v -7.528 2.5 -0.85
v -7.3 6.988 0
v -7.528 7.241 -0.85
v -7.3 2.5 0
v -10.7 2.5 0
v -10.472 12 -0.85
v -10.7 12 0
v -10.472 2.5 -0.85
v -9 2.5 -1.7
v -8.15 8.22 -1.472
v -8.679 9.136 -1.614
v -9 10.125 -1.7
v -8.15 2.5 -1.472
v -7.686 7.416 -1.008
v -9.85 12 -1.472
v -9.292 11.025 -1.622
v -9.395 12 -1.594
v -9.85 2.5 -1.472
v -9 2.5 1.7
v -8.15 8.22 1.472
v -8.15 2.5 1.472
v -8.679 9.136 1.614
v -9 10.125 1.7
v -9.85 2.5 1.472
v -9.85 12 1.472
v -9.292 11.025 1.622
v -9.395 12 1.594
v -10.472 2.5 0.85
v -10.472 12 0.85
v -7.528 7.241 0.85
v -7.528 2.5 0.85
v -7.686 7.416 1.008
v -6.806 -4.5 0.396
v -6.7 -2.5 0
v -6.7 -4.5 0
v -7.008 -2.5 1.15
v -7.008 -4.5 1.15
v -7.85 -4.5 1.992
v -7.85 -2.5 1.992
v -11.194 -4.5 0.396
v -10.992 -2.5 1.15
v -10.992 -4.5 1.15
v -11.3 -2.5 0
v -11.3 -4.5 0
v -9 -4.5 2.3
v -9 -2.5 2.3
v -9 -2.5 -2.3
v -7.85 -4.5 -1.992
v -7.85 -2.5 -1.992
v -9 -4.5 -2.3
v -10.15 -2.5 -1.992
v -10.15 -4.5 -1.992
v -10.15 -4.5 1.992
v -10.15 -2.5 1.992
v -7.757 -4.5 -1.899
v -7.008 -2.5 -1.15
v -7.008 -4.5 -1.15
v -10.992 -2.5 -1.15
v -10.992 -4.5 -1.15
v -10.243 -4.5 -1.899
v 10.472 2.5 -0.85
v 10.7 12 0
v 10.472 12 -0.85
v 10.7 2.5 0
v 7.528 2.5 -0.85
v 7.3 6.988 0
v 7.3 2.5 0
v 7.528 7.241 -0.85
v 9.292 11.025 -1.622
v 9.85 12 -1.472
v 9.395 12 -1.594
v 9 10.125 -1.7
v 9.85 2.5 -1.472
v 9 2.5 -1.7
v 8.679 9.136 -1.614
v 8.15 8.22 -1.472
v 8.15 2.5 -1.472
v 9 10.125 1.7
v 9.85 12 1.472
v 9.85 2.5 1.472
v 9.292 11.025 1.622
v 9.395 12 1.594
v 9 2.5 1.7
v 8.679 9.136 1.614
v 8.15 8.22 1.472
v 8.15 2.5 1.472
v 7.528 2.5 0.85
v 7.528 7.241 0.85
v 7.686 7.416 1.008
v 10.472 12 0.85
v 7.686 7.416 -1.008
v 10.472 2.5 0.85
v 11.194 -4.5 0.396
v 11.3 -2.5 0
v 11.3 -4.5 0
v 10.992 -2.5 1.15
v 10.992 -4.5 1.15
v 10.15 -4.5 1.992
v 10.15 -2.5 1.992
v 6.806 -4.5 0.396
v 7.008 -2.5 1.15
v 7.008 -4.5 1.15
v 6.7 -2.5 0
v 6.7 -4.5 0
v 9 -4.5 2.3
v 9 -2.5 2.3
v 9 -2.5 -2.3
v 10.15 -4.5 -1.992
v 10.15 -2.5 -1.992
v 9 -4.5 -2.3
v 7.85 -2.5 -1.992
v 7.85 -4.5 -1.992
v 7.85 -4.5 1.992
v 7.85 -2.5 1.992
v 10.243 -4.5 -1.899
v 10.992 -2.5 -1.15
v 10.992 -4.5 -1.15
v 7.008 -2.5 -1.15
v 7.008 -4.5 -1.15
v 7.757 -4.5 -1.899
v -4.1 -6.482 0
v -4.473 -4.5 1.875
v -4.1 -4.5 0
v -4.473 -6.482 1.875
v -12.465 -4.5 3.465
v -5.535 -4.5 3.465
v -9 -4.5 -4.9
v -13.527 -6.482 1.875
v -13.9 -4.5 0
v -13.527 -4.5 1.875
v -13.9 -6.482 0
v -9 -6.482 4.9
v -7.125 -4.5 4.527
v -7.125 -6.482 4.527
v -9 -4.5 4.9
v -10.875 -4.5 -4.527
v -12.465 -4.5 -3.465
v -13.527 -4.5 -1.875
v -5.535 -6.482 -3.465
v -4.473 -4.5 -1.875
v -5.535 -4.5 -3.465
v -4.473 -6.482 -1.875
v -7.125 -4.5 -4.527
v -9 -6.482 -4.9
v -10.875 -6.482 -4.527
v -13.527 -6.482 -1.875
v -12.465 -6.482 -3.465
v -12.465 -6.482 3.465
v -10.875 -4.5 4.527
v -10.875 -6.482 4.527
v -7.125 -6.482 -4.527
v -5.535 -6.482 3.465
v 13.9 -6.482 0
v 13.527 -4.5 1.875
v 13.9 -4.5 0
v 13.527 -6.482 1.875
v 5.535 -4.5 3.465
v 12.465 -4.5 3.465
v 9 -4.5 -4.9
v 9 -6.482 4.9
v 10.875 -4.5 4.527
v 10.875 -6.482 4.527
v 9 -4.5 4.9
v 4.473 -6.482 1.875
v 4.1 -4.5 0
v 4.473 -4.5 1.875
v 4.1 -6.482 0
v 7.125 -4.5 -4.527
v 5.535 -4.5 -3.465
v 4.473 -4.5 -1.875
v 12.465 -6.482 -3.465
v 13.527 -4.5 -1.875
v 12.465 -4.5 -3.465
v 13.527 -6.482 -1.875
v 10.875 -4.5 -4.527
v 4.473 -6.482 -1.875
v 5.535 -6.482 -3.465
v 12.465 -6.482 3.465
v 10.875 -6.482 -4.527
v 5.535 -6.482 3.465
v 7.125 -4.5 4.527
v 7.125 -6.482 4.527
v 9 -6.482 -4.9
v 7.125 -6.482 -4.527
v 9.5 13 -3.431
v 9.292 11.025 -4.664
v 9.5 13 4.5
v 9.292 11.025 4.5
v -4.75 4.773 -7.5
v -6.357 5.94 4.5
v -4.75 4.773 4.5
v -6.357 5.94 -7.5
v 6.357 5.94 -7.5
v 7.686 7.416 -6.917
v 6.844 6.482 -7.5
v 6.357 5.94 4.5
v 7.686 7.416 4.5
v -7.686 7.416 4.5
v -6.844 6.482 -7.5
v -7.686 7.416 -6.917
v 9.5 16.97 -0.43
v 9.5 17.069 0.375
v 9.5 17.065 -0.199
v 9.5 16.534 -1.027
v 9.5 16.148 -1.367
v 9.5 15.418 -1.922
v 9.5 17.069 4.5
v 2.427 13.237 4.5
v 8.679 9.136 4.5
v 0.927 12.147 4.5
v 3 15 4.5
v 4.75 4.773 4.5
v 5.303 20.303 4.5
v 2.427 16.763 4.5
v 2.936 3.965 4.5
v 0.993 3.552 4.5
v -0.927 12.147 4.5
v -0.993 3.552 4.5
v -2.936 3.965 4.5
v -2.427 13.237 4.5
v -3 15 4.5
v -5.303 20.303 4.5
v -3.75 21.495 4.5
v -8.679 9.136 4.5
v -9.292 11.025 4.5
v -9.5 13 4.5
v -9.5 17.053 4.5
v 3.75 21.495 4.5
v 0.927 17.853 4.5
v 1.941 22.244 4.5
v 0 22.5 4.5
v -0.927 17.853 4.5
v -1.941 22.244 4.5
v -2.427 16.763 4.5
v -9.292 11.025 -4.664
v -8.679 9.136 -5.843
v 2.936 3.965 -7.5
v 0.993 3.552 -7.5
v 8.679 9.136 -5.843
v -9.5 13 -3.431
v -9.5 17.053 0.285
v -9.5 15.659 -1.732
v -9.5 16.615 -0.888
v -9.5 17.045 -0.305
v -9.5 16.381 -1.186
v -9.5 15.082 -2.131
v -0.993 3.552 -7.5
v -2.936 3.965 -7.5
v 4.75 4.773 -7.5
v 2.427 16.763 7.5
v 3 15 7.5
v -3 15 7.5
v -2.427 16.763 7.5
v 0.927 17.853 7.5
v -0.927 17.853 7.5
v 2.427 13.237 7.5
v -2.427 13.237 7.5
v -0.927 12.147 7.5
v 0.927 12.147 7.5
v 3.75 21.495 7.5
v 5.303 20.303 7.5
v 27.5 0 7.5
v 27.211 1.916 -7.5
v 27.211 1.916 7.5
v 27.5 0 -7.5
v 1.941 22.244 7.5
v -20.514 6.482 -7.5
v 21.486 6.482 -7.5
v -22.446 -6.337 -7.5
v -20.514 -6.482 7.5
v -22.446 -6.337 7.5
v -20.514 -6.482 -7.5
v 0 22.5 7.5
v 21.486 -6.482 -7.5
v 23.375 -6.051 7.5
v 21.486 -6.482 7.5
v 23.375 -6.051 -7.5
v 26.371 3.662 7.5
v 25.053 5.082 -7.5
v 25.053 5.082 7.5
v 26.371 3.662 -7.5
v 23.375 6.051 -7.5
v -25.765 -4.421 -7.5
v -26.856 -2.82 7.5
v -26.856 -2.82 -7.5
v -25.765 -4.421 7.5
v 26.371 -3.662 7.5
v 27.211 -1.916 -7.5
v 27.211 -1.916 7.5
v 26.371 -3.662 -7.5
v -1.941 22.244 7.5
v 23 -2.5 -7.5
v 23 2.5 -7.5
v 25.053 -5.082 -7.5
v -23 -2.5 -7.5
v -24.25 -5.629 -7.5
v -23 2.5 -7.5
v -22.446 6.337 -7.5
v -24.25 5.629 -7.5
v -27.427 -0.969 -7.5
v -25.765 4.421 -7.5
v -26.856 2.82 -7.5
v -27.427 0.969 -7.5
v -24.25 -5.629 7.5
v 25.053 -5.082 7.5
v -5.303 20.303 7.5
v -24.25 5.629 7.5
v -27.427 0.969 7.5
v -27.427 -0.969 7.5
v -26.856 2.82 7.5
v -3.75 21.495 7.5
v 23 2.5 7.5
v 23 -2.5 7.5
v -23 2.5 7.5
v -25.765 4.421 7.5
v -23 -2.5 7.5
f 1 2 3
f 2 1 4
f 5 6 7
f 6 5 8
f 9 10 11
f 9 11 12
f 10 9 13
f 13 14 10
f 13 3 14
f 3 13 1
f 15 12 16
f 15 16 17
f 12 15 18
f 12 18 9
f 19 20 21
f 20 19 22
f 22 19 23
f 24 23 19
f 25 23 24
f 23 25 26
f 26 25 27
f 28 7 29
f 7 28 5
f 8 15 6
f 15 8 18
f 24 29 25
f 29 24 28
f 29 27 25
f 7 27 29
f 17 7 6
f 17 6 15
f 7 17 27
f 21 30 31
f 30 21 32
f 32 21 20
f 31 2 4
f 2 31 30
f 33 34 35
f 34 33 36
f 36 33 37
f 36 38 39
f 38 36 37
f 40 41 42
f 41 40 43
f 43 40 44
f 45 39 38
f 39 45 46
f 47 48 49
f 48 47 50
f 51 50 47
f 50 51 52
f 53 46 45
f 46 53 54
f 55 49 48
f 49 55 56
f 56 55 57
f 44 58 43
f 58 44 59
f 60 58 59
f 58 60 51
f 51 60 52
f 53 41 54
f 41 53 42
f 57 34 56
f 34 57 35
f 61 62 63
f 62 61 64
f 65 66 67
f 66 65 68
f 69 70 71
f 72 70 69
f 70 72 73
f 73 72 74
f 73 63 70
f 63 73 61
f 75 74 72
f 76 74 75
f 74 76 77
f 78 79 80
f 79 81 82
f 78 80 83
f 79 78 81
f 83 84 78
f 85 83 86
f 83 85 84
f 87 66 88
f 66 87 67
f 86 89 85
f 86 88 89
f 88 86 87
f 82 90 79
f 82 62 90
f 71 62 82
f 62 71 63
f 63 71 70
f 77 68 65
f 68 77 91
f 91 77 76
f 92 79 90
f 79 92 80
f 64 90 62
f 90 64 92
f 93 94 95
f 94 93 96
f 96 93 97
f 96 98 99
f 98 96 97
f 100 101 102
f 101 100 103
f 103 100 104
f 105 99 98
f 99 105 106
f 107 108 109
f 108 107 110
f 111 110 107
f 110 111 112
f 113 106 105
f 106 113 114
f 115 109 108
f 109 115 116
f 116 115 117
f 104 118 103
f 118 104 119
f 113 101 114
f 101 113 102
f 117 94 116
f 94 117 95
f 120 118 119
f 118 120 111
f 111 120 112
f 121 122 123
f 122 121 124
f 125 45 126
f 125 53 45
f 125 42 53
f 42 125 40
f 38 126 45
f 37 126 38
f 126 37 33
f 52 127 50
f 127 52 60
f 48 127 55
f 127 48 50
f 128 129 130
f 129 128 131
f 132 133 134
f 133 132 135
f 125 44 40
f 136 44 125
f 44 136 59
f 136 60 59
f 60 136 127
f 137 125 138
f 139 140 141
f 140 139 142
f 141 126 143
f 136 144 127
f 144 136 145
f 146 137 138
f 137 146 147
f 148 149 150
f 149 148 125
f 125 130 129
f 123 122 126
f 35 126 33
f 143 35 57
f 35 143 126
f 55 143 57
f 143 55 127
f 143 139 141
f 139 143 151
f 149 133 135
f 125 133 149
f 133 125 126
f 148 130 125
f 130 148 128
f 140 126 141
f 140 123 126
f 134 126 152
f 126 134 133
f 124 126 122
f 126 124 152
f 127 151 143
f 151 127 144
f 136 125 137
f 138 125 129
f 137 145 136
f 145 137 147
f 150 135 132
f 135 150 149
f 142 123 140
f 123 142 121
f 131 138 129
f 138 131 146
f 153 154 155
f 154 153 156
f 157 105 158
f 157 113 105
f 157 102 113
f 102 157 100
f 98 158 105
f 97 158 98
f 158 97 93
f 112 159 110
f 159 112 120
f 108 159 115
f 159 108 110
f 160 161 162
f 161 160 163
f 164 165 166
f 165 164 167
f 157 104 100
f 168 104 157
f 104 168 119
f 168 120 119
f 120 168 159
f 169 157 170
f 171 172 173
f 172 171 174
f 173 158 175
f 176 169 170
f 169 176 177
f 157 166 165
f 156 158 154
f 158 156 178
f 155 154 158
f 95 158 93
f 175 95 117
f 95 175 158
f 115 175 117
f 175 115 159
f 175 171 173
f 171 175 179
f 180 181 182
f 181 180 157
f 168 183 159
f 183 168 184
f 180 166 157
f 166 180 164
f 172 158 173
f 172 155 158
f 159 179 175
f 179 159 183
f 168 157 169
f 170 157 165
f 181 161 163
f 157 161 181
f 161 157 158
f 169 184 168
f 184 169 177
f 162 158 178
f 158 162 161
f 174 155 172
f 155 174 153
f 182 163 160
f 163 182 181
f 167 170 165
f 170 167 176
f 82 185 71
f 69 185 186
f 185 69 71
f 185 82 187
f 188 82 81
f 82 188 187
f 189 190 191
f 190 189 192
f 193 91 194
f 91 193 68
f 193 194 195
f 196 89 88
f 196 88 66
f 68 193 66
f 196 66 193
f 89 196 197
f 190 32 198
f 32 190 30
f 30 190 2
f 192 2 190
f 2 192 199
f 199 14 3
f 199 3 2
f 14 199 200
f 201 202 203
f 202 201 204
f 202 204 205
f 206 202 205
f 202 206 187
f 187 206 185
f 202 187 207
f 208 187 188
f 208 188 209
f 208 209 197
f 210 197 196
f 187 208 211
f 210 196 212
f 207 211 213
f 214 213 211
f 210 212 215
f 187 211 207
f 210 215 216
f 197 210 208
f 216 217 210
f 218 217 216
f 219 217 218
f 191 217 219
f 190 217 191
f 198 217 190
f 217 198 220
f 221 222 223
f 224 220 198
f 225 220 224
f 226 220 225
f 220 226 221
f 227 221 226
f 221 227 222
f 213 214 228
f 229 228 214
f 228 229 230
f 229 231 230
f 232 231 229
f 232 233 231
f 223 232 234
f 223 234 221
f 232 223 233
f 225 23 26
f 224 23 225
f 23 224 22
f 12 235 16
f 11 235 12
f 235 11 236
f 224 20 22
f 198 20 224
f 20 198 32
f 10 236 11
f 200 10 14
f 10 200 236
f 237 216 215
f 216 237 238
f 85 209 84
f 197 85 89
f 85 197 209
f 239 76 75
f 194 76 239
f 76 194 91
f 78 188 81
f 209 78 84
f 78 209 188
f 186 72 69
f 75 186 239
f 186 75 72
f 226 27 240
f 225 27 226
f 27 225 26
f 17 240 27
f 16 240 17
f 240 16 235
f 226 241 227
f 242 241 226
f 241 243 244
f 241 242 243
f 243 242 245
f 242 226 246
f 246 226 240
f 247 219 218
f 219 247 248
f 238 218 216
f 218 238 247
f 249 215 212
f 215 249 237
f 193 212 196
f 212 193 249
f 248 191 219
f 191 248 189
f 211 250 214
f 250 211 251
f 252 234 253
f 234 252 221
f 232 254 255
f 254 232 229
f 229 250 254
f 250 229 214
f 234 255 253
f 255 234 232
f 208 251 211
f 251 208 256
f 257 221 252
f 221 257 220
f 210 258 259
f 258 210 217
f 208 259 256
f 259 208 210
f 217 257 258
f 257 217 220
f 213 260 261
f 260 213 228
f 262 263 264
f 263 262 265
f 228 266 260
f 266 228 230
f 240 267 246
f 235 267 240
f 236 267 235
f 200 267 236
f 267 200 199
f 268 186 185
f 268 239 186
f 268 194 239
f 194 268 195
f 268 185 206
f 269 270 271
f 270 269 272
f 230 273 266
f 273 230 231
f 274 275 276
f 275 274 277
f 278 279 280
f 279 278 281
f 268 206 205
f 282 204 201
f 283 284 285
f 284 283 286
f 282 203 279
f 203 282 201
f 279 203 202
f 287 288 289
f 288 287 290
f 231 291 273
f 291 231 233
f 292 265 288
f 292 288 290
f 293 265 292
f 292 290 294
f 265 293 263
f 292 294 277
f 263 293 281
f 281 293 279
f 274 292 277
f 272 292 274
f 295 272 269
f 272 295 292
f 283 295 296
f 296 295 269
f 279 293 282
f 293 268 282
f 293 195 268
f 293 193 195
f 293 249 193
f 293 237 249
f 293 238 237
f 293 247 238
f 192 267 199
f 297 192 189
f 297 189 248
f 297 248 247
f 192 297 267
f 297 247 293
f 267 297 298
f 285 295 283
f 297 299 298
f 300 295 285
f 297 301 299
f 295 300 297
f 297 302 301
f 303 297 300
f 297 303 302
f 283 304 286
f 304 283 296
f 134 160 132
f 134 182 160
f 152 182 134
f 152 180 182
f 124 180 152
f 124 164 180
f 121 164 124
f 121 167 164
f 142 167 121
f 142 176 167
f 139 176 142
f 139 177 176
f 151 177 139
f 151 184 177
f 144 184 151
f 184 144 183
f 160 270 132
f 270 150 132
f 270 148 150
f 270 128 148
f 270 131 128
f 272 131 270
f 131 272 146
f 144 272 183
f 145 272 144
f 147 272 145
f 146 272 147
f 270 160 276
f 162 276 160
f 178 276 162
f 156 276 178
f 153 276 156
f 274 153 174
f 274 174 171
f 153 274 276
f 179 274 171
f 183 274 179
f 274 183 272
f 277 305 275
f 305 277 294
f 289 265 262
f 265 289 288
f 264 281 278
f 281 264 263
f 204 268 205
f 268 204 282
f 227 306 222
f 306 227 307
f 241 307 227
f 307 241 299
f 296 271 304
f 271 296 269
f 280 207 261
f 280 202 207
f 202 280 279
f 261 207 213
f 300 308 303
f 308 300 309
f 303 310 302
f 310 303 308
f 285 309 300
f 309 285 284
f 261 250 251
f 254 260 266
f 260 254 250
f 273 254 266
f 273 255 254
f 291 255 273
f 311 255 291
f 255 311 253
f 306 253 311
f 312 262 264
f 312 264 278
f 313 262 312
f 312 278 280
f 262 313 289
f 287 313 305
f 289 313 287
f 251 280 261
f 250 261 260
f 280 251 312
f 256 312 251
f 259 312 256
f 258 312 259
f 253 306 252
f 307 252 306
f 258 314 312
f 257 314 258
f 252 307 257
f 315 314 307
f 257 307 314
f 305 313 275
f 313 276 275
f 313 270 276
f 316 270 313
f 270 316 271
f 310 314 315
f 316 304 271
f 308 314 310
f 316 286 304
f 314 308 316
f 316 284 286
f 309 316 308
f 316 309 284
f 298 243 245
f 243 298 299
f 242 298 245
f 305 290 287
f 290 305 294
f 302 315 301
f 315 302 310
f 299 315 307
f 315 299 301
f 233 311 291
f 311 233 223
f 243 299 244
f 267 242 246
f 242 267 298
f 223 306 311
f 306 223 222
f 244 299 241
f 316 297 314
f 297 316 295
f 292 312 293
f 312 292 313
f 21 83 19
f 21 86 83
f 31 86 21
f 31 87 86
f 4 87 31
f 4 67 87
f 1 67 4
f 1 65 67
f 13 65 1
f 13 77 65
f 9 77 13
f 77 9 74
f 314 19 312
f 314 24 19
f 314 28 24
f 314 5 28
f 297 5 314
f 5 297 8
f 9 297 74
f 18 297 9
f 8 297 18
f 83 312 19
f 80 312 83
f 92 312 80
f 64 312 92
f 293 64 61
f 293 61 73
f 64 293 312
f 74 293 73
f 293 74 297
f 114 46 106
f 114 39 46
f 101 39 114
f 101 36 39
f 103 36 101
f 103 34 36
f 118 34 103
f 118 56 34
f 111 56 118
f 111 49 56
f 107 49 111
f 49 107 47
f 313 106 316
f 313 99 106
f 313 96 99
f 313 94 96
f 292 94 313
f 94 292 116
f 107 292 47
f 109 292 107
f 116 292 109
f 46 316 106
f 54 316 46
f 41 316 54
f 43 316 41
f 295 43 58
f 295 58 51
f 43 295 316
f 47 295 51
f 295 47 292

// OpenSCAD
fenderWidth = 46;
fenderThick = 5;
stayAngle = 0;
offset = 14;
rotate([-stayAngle,0,0]) {

    rotate([0,0,0]) difference() {
      {
            hull() {
                translate([fenderWidth/2-2, 0, 0]) cylinder(d=fenderThick+8, h=15, center=true);
                translate([-fenderWidth/2+2, 0, 0]) cylinder(d=fenderThick+8, h=15, center=true);
                rotate([stayAngle,0,0]) translate([0,offset,15/2 - 5/2]) cylinder(d=15, h=5, center=true);
            }
        }
        cube([fenderWidth, fenderThick, 25], center=true);
        for (xx=[-9:18:9]) {
            translate([xx,-(fenderThick/2+2),0]) rotate([90,0,0]) cylinder(d=9.8, h=6, center=false);
            translate([xx, 0, 0]) {
                rotate([-90,0,0]) cylinder(d=3.4, h=12, center=false, $fn=12);
                rotate([90,0,0]) cylinder(d=4.6, h=25, center=false, $fn=12);
            }
        }
        rotate([stayAngle,0,0]) translate([0,offset,15/2 - 3])  {
            hull() {
                translate([0,-2,0]) rotate([180,0,0]) cylinder(d=19, h=15, center=false);
                translate([0,10,0]) rotate([180,0,0]) cylinder(d=19, h=15, center=false);

            }
            cylinder(d=6, h=25, center=true);
        }

    }
}

offset=15;
